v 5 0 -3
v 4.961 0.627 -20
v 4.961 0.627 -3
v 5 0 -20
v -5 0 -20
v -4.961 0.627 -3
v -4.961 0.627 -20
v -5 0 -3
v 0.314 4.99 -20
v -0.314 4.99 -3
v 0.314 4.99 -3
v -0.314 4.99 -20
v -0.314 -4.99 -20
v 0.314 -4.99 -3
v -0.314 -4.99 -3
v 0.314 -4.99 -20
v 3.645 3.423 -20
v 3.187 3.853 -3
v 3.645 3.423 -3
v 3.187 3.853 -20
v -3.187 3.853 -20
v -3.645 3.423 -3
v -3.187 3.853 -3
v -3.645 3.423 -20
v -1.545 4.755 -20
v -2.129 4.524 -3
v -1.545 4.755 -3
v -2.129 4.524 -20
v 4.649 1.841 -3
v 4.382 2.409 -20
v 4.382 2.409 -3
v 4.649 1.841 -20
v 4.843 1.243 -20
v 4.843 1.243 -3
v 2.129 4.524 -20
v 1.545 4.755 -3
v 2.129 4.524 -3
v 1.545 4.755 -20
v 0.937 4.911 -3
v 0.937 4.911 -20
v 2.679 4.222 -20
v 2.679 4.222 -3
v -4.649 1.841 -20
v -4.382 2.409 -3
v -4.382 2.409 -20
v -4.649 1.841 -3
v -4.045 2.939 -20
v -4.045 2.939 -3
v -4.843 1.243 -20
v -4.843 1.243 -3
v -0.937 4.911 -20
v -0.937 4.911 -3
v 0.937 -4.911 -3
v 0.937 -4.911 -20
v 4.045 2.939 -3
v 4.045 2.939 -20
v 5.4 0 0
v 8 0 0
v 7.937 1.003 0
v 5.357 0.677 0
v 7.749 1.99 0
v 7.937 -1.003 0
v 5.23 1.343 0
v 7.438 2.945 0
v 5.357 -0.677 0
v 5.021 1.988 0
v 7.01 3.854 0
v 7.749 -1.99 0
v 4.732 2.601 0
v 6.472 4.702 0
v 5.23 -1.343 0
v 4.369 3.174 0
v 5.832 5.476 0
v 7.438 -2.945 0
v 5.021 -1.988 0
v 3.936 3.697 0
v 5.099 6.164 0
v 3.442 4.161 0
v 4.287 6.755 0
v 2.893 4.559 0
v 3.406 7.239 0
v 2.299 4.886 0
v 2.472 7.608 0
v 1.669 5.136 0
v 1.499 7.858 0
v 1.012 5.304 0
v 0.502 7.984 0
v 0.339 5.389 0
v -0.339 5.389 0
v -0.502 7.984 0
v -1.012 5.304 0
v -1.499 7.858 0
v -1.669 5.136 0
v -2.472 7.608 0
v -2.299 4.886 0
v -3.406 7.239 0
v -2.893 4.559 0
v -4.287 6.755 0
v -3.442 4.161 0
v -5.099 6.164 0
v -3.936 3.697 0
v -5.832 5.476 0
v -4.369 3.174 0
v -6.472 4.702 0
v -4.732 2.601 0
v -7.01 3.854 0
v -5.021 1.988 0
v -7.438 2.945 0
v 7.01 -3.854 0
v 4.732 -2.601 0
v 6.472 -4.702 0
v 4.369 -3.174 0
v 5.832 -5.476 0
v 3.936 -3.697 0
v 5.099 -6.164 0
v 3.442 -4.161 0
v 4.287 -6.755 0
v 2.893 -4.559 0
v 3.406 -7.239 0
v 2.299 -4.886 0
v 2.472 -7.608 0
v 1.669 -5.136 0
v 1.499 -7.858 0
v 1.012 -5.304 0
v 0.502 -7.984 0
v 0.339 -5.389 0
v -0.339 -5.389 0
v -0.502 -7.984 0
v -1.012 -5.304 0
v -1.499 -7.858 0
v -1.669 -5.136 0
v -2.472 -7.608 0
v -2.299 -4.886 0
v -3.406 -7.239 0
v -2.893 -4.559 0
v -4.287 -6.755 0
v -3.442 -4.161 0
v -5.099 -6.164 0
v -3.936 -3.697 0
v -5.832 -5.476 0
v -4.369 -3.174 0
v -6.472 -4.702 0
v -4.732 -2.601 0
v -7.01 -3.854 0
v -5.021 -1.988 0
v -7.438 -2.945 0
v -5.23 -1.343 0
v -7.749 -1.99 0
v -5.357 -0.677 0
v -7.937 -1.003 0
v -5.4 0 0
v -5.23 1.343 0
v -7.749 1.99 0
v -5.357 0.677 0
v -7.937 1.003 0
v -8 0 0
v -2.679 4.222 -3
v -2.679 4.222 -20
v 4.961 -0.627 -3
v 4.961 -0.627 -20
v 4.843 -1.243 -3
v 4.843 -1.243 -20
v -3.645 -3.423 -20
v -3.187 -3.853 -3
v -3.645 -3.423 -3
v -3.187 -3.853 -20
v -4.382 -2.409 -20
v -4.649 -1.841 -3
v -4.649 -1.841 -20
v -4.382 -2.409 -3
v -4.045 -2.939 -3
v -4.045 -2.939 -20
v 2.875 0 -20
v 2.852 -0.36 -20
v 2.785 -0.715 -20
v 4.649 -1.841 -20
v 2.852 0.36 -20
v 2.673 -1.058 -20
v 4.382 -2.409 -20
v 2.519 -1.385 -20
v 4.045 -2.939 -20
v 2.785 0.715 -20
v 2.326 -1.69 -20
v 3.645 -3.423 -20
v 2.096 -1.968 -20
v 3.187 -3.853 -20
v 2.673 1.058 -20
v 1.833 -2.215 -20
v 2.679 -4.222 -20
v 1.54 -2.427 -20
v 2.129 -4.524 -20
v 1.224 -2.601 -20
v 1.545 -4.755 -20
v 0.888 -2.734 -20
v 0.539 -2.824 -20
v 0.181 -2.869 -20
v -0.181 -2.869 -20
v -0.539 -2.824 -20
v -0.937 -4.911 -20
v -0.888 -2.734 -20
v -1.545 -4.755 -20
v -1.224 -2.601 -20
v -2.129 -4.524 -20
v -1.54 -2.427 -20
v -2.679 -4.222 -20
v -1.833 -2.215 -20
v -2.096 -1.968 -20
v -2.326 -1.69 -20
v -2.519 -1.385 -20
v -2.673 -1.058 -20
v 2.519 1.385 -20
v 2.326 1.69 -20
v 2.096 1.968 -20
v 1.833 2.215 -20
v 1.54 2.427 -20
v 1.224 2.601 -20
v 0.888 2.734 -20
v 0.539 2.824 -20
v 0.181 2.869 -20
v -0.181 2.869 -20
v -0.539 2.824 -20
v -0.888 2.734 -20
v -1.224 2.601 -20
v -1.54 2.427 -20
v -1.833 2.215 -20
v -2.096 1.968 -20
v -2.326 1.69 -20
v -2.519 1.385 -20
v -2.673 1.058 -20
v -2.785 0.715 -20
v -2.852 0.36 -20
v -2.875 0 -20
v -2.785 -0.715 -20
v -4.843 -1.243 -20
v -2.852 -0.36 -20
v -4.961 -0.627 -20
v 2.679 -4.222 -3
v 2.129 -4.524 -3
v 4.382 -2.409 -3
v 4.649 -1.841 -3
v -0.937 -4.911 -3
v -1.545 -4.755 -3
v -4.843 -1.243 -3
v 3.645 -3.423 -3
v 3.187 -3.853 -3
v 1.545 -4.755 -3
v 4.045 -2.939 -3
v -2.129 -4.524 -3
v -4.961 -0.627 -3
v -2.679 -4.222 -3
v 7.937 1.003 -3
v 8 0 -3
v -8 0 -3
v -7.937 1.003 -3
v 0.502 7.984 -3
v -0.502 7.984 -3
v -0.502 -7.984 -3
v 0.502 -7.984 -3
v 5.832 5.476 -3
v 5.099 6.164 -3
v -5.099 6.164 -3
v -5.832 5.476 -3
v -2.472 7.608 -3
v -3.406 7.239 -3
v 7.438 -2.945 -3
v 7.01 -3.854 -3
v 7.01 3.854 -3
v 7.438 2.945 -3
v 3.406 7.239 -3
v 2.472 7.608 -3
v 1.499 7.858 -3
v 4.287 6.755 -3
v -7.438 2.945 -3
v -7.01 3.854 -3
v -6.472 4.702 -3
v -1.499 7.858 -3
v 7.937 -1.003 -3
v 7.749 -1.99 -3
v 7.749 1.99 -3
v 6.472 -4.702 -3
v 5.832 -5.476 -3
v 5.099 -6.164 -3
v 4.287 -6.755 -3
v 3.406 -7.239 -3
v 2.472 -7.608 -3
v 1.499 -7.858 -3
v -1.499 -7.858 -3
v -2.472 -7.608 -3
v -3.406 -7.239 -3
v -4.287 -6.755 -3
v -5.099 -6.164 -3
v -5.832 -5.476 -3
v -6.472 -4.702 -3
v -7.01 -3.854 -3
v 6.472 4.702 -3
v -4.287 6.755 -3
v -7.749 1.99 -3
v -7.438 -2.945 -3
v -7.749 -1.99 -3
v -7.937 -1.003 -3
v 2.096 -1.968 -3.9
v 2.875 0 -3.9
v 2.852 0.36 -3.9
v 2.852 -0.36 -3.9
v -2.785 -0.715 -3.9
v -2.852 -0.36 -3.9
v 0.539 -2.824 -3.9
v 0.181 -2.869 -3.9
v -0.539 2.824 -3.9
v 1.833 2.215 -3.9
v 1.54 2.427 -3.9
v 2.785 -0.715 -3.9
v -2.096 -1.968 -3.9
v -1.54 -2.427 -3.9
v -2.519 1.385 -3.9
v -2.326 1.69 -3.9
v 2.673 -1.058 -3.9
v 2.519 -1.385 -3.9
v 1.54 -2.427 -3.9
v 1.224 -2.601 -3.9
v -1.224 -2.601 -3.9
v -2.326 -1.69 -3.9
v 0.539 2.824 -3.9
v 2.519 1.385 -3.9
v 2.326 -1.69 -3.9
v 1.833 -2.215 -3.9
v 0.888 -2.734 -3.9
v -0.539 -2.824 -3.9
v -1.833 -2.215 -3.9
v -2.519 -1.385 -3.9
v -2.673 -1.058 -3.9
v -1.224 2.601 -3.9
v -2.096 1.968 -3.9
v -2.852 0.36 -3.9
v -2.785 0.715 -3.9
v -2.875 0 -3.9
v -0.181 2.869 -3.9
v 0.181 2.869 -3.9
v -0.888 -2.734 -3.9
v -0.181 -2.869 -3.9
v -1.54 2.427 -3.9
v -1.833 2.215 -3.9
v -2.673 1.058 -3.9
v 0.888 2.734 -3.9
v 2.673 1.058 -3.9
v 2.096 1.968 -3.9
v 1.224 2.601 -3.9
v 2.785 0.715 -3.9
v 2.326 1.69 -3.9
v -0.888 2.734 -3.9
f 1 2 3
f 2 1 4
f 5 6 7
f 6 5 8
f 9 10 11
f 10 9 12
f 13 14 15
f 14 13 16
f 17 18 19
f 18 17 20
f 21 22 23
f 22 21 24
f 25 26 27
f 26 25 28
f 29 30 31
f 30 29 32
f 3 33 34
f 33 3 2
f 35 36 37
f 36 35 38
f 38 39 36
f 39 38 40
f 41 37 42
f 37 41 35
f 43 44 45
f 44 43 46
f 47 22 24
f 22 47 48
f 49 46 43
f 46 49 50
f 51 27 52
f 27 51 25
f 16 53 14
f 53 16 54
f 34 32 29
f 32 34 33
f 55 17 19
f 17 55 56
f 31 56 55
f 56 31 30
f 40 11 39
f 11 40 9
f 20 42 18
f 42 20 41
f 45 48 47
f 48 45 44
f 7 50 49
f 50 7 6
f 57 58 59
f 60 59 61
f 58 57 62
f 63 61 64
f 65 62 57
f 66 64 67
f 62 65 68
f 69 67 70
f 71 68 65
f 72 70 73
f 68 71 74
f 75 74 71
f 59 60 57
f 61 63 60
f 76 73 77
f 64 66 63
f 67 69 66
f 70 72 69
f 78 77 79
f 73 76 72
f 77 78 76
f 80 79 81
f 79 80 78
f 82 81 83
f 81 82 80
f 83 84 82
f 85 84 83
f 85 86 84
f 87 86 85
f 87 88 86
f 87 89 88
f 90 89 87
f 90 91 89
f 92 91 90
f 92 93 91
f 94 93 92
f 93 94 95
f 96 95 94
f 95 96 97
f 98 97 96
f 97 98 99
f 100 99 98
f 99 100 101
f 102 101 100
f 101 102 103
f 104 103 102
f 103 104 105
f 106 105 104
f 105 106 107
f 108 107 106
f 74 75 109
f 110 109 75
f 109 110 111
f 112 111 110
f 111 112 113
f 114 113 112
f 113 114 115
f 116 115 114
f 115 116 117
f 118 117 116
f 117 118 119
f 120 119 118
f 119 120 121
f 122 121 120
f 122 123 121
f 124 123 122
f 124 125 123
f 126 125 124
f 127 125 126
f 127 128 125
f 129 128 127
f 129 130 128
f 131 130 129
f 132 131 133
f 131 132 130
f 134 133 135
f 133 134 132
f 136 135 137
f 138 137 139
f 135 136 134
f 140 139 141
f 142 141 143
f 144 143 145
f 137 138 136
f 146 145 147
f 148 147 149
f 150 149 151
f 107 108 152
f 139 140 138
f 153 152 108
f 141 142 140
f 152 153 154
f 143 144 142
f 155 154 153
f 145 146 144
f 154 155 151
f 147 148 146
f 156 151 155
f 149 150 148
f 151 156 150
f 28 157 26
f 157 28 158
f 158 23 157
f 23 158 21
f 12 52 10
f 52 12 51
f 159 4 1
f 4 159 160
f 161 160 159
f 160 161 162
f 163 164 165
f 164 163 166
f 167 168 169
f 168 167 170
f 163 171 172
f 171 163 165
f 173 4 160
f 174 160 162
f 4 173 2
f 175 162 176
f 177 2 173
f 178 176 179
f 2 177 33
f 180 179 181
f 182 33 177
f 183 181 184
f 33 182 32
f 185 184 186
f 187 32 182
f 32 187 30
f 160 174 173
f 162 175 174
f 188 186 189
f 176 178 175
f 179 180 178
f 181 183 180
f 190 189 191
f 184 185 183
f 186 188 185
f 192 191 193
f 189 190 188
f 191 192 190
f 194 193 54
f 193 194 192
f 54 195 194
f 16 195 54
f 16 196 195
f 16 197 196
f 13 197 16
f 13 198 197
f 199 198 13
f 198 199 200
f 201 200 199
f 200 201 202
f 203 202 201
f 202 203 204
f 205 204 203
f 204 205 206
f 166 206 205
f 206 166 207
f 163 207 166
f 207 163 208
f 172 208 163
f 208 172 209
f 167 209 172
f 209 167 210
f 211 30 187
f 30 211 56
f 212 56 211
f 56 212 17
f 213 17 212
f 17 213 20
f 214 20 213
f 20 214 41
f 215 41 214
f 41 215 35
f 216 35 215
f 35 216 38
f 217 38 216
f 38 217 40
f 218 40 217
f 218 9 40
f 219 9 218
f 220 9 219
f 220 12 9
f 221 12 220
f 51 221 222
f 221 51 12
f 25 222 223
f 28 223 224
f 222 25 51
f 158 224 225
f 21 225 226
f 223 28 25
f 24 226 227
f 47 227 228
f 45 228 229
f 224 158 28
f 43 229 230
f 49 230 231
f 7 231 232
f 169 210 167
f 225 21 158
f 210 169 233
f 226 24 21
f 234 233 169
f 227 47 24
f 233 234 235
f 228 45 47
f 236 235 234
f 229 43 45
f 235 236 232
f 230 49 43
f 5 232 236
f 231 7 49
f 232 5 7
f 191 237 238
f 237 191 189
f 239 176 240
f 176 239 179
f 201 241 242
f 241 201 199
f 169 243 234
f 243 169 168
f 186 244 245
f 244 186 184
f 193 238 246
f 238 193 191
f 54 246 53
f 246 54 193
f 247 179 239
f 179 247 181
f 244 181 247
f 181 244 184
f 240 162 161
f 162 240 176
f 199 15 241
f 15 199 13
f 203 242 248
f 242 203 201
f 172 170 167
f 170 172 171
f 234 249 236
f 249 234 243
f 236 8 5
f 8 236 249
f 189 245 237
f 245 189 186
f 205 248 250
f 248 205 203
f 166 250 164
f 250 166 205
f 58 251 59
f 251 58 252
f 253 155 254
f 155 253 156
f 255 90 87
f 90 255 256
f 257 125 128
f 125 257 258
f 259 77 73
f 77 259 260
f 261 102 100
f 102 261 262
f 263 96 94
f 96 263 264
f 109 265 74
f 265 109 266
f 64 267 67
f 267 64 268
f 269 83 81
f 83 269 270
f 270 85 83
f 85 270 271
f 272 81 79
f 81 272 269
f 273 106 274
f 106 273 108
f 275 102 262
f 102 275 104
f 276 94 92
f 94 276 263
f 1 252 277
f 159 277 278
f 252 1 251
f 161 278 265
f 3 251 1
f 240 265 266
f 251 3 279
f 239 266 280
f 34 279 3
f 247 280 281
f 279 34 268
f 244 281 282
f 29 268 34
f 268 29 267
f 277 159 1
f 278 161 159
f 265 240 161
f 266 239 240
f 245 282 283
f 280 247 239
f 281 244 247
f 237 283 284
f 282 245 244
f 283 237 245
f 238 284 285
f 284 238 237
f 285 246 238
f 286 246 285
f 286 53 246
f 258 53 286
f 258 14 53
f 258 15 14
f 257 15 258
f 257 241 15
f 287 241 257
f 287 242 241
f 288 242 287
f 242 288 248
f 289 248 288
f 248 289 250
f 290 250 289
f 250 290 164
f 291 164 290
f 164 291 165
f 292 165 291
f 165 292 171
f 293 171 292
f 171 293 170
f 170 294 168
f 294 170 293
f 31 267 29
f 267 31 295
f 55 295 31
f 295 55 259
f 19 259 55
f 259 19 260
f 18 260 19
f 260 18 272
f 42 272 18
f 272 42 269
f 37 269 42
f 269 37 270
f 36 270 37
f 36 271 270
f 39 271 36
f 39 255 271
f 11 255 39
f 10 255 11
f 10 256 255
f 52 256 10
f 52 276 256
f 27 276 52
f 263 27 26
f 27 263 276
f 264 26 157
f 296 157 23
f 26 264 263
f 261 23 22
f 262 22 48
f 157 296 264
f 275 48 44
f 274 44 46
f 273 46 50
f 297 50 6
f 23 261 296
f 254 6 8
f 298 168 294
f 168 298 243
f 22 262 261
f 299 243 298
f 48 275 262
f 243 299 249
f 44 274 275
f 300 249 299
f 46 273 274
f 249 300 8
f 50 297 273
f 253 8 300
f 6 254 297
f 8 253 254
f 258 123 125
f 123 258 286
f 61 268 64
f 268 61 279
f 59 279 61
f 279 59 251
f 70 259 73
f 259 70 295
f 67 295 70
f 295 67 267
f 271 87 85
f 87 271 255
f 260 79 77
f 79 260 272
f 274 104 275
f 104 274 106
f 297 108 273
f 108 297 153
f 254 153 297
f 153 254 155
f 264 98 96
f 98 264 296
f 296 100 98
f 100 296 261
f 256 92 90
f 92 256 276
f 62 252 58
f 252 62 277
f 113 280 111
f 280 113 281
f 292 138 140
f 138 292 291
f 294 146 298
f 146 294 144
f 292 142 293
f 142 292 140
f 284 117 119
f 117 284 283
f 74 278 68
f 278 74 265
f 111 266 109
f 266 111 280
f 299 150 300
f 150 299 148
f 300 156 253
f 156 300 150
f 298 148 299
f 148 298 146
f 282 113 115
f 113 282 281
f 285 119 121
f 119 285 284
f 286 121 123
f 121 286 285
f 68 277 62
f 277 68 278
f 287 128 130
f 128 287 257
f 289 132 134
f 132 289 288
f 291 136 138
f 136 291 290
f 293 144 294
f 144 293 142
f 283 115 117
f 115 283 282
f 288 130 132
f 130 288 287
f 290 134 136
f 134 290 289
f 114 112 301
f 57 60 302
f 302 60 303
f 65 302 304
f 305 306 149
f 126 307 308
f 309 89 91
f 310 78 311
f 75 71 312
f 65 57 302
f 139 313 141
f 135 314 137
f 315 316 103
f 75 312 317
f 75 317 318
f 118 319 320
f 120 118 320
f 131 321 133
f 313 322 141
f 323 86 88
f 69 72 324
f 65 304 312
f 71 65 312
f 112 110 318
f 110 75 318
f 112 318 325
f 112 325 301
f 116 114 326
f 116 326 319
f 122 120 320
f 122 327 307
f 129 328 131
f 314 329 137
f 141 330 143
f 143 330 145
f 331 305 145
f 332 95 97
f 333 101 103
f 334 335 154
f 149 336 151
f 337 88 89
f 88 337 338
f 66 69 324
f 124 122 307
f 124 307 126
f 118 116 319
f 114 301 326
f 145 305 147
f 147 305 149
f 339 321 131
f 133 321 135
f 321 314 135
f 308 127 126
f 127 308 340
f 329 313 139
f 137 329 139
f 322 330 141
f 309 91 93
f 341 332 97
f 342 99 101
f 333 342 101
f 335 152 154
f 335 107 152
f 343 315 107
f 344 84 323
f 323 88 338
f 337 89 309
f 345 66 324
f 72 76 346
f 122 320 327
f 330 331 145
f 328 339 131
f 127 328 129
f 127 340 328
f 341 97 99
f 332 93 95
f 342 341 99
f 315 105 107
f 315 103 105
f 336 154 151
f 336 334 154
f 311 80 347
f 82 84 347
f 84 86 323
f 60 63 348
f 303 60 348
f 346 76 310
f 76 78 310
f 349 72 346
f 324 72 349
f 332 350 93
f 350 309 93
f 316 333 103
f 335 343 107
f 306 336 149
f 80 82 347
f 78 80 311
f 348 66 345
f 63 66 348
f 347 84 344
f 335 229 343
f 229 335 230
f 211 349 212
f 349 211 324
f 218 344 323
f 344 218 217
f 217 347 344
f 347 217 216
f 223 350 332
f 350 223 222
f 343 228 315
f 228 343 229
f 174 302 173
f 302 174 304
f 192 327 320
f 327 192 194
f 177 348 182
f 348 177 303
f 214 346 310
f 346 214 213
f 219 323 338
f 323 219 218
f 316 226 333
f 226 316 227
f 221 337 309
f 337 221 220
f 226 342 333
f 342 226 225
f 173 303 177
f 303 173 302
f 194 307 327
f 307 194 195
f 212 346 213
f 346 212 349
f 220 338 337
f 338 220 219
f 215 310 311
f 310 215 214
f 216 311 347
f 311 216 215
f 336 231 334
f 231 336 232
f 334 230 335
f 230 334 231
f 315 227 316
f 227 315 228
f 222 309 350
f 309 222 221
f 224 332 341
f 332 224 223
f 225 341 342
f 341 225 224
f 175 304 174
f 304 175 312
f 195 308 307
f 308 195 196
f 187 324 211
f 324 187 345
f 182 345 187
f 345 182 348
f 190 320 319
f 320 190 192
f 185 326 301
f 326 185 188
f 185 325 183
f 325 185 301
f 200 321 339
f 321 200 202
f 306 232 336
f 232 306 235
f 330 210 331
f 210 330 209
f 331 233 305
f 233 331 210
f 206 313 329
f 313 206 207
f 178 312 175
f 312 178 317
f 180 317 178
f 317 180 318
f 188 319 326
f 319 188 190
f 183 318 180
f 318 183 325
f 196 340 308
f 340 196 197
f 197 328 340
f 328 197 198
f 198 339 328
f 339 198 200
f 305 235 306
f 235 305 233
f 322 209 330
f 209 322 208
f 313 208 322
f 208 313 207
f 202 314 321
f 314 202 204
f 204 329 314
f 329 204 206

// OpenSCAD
$fn = 50;


difference() {
	union() {
		translate(v = [0, 0, -20.0000000000]) {
			cylinder(h = 20, r = 5.0000000000);
		}
		translate(v = [0, 0, -3.0000000000]) {
			cylinder(h = 3, r = 8.0000000000);
		}
	}
	union() {
		translate(v = [0, 0, 0]) {
			rotate(a = [0, 0, 0]) {
				difference() {
					union() {
						#translate(v = [0, 0, -20.0000000000]) {
							cylinder(h = 20, r = 2.6000000000);
						}
						#translate(v = [0, 0, -3.9000000000]) {
							cylinder(h = 3.9000000000, r = 5.0000000000, r1 = 2.8750000000, r2 = 5.4000000000);
						}
						#translate(v = [0, 0, -20.0000000000]) {
							cylinder(h = 20, r = 2.8750000000);
						}
						#translate(v = [0, 0, -20.0000000000]) {
							cylinder(h = 20, r = 2.6000000000);
						}
					}
					union();
				}
			}
		}
	}
}
